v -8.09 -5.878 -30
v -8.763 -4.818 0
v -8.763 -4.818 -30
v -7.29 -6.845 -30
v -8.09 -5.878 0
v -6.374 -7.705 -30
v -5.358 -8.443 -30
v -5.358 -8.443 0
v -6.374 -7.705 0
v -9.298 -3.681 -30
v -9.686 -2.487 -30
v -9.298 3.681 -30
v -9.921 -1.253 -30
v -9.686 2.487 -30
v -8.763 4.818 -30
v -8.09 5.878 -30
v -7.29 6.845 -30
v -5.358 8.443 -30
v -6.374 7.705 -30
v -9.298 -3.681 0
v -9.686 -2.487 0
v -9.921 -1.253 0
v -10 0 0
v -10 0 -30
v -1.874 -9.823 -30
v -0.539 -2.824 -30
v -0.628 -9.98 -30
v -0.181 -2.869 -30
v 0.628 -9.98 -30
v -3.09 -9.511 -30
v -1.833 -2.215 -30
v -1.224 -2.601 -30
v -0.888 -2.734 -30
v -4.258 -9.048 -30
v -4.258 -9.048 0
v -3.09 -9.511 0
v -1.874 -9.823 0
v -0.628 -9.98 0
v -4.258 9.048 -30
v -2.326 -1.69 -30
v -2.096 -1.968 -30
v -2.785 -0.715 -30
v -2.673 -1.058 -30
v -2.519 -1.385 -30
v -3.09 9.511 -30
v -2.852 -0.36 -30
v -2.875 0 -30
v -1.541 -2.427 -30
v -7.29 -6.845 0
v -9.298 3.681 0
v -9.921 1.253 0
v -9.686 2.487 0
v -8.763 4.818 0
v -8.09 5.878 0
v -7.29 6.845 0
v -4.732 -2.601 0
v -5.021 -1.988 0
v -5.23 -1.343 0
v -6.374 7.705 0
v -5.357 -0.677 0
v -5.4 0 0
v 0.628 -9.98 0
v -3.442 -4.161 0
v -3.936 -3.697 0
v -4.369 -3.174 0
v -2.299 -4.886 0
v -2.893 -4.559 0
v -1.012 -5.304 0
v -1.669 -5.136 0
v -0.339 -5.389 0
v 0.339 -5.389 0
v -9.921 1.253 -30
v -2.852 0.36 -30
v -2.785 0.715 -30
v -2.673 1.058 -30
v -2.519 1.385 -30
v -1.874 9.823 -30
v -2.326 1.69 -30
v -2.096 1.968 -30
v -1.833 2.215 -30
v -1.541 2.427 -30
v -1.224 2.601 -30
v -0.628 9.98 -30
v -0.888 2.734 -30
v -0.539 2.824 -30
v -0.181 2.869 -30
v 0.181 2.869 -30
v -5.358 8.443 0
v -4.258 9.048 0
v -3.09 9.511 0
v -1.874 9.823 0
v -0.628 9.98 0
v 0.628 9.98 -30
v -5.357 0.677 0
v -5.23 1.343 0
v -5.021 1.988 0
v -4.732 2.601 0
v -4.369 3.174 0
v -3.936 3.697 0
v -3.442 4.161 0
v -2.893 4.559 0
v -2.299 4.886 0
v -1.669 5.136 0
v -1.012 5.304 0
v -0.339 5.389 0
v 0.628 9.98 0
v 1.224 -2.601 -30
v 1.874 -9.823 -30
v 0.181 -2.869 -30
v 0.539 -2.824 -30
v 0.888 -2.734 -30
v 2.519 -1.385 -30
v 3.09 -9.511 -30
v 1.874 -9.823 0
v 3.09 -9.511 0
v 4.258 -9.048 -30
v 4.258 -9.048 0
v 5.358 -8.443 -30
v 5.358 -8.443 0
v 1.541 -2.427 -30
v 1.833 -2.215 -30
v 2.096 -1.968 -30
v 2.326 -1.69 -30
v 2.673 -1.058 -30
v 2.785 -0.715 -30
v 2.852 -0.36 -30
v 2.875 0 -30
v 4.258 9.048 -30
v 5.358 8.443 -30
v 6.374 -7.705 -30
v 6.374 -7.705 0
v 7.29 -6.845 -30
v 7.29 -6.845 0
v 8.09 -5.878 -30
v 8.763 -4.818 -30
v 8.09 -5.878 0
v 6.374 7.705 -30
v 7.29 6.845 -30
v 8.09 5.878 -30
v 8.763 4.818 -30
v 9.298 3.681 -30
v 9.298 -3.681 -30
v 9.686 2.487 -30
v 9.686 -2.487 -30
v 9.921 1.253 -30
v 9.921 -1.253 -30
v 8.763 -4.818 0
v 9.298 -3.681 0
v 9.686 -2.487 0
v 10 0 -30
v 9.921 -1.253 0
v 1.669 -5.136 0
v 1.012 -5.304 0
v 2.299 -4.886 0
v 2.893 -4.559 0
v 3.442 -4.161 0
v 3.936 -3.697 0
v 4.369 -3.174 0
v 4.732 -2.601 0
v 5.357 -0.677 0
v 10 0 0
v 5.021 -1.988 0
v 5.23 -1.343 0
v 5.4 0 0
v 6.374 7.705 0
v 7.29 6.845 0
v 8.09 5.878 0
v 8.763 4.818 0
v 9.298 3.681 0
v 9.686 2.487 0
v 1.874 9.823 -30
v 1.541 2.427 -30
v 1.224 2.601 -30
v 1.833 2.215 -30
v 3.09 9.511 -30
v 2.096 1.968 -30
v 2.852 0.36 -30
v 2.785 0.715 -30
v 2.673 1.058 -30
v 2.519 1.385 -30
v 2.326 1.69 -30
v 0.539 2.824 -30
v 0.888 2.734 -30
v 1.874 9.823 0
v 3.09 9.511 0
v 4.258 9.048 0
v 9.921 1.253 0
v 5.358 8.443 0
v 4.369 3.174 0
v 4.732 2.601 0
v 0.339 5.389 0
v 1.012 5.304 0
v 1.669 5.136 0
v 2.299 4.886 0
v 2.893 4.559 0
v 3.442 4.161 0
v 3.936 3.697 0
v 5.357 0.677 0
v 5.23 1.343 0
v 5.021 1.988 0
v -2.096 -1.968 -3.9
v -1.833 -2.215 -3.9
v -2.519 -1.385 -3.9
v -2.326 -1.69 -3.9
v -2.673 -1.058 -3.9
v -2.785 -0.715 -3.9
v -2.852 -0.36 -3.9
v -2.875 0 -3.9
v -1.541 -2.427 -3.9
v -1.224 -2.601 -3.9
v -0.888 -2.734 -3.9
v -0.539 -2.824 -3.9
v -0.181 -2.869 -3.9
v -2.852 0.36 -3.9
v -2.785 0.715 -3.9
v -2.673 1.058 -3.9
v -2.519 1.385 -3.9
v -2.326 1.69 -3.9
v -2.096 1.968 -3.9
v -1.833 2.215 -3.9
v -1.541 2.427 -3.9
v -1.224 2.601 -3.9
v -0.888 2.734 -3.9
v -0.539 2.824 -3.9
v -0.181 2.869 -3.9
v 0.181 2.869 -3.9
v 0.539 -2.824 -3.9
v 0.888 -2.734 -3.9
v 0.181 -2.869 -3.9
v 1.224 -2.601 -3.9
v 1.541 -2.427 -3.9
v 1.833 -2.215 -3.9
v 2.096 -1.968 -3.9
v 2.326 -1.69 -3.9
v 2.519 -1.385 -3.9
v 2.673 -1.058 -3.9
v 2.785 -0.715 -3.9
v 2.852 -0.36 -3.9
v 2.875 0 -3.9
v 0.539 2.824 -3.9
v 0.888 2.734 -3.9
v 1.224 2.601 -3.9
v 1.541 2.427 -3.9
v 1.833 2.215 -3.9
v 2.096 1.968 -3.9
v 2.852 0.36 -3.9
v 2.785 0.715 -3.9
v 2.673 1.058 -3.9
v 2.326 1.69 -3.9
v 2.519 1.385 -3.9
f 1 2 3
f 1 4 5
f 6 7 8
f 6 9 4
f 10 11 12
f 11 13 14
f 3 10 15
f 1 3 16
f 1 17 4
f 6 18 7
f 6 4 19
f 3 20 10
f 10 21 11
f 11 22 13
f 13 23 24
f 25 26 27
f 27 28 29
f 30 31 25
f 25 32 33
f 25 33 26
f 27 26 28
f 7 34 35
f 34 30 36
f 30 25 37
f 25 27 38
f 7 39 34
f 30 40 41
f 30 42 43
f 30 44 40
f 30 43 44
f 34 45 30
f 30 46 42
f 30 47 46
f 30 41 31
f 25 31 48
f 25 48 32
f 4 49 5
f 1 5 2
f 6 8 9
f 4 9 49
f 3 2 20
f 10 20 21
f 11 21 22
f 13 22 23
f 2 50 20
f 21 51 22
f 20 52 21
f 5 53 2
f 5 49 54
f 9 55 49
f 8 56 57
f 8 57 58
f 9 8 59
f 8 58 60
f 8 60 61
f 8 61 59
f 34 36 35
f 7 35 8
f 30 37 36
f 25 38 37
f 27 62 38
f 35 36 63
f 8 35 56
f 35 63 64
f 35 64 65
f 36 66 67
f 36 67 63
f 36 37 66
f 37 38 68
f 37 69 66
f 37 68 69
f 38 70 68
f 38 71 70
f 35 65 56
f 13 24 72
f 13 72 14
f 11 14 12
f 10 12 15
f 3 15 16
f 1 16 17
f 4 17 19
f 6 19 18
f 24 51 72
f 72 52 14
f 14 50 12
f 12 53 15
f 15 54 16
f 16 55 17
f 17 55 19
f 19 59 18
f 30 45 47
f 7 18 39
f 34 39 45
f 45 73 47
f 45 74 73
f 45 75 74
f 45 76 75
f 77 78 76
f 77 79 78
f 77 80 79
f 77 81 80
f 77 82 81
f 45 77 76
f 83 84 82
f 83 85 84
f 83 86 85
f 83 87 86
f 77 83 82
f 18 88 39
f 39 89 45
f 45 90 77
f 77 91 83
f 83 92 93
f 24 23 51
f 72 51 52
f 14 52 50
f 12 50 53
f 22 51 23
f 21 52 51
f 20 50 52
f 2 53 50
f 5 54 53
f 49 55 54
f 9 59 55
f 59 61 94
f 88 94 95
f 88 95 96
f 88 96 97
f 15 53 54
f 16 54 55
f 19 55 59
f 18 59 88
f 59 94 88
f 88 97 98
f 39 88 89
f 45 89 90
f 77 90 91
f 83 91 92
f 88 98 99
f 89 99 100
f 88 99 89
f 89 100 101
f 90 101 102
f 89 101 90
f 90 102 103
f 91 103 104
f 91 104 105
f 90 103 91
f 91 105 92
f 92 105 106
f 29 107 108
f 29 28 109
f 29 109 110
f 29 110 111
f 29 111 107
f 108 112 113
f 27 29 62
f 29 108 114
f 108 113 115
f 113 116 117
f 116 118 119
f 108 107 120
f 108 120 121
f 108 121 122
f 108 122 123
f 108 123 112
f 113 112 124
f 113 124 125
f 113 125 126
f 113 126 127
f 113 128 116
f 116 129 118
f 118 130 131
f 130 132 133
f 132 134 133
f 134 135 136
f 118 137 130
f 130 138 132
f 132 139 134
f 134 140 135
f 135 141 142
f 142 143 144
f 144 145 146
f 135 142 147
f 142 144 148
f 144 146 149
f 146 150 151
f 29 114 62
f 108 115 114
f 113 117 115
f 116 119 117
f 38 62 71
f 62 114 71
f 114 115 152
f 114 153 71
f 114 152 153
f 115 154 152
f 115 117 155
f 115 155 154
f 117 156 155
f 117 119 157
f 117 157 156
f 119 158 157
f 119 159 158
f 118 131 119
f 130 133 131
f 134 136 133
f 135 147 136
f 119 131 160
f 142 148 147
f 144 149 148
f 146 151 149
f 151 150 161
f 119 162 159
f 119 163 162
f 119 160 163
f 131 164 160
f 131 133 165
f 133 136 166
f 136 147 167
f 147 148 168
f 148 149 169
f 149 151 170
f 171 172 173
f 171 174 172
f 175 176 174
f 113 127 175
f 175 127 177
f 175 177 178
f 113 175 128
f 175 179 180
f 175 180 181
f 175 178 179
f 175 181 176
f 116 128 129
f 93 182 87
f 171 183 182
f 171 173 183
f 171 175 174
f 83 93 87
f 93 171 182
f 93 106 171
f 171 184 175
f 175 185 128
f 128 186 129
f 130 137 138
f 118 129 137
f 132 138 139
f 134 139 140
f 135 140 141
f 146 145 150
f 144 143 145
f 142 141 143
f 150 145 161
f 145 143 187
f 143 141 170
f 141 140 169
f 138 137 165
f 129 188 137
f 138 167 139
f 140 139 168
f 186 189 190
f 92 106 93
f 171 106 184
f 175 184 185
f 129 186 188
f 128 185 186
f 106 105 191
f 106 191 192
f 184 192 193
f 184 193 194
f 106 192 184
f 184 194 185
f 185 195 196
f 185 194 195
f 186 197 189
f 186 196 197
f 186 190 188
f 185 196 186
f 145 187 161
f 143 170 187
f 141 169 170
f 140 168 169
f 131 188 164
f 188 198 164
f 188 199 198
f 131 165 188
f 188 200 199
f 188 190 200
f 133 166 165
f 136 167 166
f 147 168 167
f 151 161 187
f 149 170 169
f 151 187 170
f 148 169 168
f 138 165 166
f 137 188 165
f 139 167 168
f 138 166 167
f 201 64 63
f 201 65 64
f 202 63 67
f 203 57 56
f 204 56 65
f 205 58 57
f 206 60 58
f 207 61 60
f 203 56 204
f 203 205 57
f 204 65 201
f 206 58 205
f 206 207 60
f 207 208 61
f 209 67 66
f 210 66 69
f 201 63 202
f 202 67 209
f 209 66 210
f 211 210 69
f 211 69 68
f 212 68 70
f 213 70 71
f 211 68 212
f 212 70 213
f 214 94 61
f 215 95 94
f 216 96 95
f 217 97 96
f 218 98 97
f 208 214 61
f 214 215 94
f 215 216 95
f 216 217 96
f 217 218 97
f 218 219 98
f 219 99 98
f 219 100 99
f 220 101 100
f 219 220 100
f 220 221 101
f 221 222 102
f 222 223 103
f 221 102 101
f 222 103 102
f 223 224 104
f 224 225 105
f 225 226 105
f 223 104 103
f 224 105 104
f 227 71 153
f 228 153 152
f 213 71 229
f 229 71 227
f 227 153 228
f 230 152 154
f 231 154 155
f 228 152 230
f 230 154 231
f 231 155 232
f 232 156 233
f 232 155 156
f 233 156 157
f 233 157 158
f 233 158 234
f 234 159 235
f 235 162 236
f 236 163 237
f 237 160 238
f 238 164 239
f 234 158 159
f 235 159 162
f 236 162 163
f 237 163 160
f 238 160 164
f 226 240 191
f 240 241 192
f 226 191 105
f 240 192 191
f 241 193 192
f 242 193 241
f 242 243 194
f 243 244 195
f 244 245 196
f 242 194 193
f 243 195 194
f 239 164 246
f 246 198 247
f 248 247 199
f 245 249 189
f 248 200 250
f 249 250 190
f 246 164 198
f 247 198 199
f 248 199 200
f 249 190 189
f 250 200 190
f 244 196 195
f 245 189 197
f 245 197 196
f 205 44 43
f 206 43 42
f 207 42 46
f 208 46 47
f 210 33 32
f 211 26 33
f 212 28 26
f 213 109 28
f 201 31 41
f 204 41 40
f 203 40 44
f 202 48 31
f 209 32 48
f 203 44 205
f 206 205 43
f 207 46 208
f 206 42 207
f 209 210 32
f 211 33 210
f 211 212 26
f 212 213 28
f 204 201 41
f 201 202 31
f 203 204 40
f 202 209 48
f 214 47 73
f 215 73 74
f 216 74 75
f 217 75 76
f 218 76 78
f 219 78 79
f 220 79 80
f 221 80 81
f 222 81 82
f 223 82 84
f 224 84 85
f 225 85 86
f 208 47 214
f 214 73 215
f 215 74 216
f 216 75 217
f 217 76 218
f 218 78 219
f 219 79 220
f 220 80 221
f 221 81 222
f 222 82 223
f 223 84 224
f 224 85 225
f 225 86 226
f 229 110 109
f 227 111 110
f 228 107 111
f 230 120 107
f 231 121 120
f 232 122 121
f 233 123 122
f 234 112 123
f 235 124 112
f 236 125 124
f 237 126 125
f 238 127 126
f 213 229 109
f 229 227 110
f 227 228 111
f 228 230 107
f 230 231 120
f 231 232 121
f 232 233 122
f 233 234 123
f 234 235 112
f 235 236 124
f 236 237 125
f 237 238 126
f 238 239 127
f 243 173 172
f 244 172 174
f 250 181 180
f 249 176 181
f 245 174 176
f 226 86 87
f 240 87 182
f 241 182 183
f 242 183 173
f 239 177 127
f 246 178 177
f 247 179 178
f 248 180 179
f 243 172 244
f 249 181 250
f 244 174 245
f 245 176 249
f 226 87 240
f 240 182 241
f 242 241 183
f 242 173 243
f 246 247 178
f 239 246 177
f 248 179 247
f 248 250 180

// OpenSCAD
$fn = 50;

difference() {
	union() {
		translate(v = [0, 0, -30.0]) {
			cylinder(h = 30, r = 10.0);
		}
		#translate(v = [0, 0, -33.0]) {
			cylinder(h = 33, r = 2.875);
		}
	}
	union() {
		translate(v = [0, 0, 0]) {
			rotate(a = [0, 0, 0]) {
				difference() {
					union() {
						translate(v = [0, 0, -33.0]) {
							cylinder(h = 33, r = 2.6);
						}
						translate(v = [0, 0, -3.9]) {
							cylinder(h = 3.9, r1 = 2.875, r2 = 5.4);
						}
						translate(v = [0, 0, -33.0]) {
							cylinder(h = 33, r = 2.875);
						}
						translate(v = [0, 0, -33.0]) {
							cylinder(h = 33, r = 2.6);
						}
					}
					union();
				}
			}
		}
	}
}
